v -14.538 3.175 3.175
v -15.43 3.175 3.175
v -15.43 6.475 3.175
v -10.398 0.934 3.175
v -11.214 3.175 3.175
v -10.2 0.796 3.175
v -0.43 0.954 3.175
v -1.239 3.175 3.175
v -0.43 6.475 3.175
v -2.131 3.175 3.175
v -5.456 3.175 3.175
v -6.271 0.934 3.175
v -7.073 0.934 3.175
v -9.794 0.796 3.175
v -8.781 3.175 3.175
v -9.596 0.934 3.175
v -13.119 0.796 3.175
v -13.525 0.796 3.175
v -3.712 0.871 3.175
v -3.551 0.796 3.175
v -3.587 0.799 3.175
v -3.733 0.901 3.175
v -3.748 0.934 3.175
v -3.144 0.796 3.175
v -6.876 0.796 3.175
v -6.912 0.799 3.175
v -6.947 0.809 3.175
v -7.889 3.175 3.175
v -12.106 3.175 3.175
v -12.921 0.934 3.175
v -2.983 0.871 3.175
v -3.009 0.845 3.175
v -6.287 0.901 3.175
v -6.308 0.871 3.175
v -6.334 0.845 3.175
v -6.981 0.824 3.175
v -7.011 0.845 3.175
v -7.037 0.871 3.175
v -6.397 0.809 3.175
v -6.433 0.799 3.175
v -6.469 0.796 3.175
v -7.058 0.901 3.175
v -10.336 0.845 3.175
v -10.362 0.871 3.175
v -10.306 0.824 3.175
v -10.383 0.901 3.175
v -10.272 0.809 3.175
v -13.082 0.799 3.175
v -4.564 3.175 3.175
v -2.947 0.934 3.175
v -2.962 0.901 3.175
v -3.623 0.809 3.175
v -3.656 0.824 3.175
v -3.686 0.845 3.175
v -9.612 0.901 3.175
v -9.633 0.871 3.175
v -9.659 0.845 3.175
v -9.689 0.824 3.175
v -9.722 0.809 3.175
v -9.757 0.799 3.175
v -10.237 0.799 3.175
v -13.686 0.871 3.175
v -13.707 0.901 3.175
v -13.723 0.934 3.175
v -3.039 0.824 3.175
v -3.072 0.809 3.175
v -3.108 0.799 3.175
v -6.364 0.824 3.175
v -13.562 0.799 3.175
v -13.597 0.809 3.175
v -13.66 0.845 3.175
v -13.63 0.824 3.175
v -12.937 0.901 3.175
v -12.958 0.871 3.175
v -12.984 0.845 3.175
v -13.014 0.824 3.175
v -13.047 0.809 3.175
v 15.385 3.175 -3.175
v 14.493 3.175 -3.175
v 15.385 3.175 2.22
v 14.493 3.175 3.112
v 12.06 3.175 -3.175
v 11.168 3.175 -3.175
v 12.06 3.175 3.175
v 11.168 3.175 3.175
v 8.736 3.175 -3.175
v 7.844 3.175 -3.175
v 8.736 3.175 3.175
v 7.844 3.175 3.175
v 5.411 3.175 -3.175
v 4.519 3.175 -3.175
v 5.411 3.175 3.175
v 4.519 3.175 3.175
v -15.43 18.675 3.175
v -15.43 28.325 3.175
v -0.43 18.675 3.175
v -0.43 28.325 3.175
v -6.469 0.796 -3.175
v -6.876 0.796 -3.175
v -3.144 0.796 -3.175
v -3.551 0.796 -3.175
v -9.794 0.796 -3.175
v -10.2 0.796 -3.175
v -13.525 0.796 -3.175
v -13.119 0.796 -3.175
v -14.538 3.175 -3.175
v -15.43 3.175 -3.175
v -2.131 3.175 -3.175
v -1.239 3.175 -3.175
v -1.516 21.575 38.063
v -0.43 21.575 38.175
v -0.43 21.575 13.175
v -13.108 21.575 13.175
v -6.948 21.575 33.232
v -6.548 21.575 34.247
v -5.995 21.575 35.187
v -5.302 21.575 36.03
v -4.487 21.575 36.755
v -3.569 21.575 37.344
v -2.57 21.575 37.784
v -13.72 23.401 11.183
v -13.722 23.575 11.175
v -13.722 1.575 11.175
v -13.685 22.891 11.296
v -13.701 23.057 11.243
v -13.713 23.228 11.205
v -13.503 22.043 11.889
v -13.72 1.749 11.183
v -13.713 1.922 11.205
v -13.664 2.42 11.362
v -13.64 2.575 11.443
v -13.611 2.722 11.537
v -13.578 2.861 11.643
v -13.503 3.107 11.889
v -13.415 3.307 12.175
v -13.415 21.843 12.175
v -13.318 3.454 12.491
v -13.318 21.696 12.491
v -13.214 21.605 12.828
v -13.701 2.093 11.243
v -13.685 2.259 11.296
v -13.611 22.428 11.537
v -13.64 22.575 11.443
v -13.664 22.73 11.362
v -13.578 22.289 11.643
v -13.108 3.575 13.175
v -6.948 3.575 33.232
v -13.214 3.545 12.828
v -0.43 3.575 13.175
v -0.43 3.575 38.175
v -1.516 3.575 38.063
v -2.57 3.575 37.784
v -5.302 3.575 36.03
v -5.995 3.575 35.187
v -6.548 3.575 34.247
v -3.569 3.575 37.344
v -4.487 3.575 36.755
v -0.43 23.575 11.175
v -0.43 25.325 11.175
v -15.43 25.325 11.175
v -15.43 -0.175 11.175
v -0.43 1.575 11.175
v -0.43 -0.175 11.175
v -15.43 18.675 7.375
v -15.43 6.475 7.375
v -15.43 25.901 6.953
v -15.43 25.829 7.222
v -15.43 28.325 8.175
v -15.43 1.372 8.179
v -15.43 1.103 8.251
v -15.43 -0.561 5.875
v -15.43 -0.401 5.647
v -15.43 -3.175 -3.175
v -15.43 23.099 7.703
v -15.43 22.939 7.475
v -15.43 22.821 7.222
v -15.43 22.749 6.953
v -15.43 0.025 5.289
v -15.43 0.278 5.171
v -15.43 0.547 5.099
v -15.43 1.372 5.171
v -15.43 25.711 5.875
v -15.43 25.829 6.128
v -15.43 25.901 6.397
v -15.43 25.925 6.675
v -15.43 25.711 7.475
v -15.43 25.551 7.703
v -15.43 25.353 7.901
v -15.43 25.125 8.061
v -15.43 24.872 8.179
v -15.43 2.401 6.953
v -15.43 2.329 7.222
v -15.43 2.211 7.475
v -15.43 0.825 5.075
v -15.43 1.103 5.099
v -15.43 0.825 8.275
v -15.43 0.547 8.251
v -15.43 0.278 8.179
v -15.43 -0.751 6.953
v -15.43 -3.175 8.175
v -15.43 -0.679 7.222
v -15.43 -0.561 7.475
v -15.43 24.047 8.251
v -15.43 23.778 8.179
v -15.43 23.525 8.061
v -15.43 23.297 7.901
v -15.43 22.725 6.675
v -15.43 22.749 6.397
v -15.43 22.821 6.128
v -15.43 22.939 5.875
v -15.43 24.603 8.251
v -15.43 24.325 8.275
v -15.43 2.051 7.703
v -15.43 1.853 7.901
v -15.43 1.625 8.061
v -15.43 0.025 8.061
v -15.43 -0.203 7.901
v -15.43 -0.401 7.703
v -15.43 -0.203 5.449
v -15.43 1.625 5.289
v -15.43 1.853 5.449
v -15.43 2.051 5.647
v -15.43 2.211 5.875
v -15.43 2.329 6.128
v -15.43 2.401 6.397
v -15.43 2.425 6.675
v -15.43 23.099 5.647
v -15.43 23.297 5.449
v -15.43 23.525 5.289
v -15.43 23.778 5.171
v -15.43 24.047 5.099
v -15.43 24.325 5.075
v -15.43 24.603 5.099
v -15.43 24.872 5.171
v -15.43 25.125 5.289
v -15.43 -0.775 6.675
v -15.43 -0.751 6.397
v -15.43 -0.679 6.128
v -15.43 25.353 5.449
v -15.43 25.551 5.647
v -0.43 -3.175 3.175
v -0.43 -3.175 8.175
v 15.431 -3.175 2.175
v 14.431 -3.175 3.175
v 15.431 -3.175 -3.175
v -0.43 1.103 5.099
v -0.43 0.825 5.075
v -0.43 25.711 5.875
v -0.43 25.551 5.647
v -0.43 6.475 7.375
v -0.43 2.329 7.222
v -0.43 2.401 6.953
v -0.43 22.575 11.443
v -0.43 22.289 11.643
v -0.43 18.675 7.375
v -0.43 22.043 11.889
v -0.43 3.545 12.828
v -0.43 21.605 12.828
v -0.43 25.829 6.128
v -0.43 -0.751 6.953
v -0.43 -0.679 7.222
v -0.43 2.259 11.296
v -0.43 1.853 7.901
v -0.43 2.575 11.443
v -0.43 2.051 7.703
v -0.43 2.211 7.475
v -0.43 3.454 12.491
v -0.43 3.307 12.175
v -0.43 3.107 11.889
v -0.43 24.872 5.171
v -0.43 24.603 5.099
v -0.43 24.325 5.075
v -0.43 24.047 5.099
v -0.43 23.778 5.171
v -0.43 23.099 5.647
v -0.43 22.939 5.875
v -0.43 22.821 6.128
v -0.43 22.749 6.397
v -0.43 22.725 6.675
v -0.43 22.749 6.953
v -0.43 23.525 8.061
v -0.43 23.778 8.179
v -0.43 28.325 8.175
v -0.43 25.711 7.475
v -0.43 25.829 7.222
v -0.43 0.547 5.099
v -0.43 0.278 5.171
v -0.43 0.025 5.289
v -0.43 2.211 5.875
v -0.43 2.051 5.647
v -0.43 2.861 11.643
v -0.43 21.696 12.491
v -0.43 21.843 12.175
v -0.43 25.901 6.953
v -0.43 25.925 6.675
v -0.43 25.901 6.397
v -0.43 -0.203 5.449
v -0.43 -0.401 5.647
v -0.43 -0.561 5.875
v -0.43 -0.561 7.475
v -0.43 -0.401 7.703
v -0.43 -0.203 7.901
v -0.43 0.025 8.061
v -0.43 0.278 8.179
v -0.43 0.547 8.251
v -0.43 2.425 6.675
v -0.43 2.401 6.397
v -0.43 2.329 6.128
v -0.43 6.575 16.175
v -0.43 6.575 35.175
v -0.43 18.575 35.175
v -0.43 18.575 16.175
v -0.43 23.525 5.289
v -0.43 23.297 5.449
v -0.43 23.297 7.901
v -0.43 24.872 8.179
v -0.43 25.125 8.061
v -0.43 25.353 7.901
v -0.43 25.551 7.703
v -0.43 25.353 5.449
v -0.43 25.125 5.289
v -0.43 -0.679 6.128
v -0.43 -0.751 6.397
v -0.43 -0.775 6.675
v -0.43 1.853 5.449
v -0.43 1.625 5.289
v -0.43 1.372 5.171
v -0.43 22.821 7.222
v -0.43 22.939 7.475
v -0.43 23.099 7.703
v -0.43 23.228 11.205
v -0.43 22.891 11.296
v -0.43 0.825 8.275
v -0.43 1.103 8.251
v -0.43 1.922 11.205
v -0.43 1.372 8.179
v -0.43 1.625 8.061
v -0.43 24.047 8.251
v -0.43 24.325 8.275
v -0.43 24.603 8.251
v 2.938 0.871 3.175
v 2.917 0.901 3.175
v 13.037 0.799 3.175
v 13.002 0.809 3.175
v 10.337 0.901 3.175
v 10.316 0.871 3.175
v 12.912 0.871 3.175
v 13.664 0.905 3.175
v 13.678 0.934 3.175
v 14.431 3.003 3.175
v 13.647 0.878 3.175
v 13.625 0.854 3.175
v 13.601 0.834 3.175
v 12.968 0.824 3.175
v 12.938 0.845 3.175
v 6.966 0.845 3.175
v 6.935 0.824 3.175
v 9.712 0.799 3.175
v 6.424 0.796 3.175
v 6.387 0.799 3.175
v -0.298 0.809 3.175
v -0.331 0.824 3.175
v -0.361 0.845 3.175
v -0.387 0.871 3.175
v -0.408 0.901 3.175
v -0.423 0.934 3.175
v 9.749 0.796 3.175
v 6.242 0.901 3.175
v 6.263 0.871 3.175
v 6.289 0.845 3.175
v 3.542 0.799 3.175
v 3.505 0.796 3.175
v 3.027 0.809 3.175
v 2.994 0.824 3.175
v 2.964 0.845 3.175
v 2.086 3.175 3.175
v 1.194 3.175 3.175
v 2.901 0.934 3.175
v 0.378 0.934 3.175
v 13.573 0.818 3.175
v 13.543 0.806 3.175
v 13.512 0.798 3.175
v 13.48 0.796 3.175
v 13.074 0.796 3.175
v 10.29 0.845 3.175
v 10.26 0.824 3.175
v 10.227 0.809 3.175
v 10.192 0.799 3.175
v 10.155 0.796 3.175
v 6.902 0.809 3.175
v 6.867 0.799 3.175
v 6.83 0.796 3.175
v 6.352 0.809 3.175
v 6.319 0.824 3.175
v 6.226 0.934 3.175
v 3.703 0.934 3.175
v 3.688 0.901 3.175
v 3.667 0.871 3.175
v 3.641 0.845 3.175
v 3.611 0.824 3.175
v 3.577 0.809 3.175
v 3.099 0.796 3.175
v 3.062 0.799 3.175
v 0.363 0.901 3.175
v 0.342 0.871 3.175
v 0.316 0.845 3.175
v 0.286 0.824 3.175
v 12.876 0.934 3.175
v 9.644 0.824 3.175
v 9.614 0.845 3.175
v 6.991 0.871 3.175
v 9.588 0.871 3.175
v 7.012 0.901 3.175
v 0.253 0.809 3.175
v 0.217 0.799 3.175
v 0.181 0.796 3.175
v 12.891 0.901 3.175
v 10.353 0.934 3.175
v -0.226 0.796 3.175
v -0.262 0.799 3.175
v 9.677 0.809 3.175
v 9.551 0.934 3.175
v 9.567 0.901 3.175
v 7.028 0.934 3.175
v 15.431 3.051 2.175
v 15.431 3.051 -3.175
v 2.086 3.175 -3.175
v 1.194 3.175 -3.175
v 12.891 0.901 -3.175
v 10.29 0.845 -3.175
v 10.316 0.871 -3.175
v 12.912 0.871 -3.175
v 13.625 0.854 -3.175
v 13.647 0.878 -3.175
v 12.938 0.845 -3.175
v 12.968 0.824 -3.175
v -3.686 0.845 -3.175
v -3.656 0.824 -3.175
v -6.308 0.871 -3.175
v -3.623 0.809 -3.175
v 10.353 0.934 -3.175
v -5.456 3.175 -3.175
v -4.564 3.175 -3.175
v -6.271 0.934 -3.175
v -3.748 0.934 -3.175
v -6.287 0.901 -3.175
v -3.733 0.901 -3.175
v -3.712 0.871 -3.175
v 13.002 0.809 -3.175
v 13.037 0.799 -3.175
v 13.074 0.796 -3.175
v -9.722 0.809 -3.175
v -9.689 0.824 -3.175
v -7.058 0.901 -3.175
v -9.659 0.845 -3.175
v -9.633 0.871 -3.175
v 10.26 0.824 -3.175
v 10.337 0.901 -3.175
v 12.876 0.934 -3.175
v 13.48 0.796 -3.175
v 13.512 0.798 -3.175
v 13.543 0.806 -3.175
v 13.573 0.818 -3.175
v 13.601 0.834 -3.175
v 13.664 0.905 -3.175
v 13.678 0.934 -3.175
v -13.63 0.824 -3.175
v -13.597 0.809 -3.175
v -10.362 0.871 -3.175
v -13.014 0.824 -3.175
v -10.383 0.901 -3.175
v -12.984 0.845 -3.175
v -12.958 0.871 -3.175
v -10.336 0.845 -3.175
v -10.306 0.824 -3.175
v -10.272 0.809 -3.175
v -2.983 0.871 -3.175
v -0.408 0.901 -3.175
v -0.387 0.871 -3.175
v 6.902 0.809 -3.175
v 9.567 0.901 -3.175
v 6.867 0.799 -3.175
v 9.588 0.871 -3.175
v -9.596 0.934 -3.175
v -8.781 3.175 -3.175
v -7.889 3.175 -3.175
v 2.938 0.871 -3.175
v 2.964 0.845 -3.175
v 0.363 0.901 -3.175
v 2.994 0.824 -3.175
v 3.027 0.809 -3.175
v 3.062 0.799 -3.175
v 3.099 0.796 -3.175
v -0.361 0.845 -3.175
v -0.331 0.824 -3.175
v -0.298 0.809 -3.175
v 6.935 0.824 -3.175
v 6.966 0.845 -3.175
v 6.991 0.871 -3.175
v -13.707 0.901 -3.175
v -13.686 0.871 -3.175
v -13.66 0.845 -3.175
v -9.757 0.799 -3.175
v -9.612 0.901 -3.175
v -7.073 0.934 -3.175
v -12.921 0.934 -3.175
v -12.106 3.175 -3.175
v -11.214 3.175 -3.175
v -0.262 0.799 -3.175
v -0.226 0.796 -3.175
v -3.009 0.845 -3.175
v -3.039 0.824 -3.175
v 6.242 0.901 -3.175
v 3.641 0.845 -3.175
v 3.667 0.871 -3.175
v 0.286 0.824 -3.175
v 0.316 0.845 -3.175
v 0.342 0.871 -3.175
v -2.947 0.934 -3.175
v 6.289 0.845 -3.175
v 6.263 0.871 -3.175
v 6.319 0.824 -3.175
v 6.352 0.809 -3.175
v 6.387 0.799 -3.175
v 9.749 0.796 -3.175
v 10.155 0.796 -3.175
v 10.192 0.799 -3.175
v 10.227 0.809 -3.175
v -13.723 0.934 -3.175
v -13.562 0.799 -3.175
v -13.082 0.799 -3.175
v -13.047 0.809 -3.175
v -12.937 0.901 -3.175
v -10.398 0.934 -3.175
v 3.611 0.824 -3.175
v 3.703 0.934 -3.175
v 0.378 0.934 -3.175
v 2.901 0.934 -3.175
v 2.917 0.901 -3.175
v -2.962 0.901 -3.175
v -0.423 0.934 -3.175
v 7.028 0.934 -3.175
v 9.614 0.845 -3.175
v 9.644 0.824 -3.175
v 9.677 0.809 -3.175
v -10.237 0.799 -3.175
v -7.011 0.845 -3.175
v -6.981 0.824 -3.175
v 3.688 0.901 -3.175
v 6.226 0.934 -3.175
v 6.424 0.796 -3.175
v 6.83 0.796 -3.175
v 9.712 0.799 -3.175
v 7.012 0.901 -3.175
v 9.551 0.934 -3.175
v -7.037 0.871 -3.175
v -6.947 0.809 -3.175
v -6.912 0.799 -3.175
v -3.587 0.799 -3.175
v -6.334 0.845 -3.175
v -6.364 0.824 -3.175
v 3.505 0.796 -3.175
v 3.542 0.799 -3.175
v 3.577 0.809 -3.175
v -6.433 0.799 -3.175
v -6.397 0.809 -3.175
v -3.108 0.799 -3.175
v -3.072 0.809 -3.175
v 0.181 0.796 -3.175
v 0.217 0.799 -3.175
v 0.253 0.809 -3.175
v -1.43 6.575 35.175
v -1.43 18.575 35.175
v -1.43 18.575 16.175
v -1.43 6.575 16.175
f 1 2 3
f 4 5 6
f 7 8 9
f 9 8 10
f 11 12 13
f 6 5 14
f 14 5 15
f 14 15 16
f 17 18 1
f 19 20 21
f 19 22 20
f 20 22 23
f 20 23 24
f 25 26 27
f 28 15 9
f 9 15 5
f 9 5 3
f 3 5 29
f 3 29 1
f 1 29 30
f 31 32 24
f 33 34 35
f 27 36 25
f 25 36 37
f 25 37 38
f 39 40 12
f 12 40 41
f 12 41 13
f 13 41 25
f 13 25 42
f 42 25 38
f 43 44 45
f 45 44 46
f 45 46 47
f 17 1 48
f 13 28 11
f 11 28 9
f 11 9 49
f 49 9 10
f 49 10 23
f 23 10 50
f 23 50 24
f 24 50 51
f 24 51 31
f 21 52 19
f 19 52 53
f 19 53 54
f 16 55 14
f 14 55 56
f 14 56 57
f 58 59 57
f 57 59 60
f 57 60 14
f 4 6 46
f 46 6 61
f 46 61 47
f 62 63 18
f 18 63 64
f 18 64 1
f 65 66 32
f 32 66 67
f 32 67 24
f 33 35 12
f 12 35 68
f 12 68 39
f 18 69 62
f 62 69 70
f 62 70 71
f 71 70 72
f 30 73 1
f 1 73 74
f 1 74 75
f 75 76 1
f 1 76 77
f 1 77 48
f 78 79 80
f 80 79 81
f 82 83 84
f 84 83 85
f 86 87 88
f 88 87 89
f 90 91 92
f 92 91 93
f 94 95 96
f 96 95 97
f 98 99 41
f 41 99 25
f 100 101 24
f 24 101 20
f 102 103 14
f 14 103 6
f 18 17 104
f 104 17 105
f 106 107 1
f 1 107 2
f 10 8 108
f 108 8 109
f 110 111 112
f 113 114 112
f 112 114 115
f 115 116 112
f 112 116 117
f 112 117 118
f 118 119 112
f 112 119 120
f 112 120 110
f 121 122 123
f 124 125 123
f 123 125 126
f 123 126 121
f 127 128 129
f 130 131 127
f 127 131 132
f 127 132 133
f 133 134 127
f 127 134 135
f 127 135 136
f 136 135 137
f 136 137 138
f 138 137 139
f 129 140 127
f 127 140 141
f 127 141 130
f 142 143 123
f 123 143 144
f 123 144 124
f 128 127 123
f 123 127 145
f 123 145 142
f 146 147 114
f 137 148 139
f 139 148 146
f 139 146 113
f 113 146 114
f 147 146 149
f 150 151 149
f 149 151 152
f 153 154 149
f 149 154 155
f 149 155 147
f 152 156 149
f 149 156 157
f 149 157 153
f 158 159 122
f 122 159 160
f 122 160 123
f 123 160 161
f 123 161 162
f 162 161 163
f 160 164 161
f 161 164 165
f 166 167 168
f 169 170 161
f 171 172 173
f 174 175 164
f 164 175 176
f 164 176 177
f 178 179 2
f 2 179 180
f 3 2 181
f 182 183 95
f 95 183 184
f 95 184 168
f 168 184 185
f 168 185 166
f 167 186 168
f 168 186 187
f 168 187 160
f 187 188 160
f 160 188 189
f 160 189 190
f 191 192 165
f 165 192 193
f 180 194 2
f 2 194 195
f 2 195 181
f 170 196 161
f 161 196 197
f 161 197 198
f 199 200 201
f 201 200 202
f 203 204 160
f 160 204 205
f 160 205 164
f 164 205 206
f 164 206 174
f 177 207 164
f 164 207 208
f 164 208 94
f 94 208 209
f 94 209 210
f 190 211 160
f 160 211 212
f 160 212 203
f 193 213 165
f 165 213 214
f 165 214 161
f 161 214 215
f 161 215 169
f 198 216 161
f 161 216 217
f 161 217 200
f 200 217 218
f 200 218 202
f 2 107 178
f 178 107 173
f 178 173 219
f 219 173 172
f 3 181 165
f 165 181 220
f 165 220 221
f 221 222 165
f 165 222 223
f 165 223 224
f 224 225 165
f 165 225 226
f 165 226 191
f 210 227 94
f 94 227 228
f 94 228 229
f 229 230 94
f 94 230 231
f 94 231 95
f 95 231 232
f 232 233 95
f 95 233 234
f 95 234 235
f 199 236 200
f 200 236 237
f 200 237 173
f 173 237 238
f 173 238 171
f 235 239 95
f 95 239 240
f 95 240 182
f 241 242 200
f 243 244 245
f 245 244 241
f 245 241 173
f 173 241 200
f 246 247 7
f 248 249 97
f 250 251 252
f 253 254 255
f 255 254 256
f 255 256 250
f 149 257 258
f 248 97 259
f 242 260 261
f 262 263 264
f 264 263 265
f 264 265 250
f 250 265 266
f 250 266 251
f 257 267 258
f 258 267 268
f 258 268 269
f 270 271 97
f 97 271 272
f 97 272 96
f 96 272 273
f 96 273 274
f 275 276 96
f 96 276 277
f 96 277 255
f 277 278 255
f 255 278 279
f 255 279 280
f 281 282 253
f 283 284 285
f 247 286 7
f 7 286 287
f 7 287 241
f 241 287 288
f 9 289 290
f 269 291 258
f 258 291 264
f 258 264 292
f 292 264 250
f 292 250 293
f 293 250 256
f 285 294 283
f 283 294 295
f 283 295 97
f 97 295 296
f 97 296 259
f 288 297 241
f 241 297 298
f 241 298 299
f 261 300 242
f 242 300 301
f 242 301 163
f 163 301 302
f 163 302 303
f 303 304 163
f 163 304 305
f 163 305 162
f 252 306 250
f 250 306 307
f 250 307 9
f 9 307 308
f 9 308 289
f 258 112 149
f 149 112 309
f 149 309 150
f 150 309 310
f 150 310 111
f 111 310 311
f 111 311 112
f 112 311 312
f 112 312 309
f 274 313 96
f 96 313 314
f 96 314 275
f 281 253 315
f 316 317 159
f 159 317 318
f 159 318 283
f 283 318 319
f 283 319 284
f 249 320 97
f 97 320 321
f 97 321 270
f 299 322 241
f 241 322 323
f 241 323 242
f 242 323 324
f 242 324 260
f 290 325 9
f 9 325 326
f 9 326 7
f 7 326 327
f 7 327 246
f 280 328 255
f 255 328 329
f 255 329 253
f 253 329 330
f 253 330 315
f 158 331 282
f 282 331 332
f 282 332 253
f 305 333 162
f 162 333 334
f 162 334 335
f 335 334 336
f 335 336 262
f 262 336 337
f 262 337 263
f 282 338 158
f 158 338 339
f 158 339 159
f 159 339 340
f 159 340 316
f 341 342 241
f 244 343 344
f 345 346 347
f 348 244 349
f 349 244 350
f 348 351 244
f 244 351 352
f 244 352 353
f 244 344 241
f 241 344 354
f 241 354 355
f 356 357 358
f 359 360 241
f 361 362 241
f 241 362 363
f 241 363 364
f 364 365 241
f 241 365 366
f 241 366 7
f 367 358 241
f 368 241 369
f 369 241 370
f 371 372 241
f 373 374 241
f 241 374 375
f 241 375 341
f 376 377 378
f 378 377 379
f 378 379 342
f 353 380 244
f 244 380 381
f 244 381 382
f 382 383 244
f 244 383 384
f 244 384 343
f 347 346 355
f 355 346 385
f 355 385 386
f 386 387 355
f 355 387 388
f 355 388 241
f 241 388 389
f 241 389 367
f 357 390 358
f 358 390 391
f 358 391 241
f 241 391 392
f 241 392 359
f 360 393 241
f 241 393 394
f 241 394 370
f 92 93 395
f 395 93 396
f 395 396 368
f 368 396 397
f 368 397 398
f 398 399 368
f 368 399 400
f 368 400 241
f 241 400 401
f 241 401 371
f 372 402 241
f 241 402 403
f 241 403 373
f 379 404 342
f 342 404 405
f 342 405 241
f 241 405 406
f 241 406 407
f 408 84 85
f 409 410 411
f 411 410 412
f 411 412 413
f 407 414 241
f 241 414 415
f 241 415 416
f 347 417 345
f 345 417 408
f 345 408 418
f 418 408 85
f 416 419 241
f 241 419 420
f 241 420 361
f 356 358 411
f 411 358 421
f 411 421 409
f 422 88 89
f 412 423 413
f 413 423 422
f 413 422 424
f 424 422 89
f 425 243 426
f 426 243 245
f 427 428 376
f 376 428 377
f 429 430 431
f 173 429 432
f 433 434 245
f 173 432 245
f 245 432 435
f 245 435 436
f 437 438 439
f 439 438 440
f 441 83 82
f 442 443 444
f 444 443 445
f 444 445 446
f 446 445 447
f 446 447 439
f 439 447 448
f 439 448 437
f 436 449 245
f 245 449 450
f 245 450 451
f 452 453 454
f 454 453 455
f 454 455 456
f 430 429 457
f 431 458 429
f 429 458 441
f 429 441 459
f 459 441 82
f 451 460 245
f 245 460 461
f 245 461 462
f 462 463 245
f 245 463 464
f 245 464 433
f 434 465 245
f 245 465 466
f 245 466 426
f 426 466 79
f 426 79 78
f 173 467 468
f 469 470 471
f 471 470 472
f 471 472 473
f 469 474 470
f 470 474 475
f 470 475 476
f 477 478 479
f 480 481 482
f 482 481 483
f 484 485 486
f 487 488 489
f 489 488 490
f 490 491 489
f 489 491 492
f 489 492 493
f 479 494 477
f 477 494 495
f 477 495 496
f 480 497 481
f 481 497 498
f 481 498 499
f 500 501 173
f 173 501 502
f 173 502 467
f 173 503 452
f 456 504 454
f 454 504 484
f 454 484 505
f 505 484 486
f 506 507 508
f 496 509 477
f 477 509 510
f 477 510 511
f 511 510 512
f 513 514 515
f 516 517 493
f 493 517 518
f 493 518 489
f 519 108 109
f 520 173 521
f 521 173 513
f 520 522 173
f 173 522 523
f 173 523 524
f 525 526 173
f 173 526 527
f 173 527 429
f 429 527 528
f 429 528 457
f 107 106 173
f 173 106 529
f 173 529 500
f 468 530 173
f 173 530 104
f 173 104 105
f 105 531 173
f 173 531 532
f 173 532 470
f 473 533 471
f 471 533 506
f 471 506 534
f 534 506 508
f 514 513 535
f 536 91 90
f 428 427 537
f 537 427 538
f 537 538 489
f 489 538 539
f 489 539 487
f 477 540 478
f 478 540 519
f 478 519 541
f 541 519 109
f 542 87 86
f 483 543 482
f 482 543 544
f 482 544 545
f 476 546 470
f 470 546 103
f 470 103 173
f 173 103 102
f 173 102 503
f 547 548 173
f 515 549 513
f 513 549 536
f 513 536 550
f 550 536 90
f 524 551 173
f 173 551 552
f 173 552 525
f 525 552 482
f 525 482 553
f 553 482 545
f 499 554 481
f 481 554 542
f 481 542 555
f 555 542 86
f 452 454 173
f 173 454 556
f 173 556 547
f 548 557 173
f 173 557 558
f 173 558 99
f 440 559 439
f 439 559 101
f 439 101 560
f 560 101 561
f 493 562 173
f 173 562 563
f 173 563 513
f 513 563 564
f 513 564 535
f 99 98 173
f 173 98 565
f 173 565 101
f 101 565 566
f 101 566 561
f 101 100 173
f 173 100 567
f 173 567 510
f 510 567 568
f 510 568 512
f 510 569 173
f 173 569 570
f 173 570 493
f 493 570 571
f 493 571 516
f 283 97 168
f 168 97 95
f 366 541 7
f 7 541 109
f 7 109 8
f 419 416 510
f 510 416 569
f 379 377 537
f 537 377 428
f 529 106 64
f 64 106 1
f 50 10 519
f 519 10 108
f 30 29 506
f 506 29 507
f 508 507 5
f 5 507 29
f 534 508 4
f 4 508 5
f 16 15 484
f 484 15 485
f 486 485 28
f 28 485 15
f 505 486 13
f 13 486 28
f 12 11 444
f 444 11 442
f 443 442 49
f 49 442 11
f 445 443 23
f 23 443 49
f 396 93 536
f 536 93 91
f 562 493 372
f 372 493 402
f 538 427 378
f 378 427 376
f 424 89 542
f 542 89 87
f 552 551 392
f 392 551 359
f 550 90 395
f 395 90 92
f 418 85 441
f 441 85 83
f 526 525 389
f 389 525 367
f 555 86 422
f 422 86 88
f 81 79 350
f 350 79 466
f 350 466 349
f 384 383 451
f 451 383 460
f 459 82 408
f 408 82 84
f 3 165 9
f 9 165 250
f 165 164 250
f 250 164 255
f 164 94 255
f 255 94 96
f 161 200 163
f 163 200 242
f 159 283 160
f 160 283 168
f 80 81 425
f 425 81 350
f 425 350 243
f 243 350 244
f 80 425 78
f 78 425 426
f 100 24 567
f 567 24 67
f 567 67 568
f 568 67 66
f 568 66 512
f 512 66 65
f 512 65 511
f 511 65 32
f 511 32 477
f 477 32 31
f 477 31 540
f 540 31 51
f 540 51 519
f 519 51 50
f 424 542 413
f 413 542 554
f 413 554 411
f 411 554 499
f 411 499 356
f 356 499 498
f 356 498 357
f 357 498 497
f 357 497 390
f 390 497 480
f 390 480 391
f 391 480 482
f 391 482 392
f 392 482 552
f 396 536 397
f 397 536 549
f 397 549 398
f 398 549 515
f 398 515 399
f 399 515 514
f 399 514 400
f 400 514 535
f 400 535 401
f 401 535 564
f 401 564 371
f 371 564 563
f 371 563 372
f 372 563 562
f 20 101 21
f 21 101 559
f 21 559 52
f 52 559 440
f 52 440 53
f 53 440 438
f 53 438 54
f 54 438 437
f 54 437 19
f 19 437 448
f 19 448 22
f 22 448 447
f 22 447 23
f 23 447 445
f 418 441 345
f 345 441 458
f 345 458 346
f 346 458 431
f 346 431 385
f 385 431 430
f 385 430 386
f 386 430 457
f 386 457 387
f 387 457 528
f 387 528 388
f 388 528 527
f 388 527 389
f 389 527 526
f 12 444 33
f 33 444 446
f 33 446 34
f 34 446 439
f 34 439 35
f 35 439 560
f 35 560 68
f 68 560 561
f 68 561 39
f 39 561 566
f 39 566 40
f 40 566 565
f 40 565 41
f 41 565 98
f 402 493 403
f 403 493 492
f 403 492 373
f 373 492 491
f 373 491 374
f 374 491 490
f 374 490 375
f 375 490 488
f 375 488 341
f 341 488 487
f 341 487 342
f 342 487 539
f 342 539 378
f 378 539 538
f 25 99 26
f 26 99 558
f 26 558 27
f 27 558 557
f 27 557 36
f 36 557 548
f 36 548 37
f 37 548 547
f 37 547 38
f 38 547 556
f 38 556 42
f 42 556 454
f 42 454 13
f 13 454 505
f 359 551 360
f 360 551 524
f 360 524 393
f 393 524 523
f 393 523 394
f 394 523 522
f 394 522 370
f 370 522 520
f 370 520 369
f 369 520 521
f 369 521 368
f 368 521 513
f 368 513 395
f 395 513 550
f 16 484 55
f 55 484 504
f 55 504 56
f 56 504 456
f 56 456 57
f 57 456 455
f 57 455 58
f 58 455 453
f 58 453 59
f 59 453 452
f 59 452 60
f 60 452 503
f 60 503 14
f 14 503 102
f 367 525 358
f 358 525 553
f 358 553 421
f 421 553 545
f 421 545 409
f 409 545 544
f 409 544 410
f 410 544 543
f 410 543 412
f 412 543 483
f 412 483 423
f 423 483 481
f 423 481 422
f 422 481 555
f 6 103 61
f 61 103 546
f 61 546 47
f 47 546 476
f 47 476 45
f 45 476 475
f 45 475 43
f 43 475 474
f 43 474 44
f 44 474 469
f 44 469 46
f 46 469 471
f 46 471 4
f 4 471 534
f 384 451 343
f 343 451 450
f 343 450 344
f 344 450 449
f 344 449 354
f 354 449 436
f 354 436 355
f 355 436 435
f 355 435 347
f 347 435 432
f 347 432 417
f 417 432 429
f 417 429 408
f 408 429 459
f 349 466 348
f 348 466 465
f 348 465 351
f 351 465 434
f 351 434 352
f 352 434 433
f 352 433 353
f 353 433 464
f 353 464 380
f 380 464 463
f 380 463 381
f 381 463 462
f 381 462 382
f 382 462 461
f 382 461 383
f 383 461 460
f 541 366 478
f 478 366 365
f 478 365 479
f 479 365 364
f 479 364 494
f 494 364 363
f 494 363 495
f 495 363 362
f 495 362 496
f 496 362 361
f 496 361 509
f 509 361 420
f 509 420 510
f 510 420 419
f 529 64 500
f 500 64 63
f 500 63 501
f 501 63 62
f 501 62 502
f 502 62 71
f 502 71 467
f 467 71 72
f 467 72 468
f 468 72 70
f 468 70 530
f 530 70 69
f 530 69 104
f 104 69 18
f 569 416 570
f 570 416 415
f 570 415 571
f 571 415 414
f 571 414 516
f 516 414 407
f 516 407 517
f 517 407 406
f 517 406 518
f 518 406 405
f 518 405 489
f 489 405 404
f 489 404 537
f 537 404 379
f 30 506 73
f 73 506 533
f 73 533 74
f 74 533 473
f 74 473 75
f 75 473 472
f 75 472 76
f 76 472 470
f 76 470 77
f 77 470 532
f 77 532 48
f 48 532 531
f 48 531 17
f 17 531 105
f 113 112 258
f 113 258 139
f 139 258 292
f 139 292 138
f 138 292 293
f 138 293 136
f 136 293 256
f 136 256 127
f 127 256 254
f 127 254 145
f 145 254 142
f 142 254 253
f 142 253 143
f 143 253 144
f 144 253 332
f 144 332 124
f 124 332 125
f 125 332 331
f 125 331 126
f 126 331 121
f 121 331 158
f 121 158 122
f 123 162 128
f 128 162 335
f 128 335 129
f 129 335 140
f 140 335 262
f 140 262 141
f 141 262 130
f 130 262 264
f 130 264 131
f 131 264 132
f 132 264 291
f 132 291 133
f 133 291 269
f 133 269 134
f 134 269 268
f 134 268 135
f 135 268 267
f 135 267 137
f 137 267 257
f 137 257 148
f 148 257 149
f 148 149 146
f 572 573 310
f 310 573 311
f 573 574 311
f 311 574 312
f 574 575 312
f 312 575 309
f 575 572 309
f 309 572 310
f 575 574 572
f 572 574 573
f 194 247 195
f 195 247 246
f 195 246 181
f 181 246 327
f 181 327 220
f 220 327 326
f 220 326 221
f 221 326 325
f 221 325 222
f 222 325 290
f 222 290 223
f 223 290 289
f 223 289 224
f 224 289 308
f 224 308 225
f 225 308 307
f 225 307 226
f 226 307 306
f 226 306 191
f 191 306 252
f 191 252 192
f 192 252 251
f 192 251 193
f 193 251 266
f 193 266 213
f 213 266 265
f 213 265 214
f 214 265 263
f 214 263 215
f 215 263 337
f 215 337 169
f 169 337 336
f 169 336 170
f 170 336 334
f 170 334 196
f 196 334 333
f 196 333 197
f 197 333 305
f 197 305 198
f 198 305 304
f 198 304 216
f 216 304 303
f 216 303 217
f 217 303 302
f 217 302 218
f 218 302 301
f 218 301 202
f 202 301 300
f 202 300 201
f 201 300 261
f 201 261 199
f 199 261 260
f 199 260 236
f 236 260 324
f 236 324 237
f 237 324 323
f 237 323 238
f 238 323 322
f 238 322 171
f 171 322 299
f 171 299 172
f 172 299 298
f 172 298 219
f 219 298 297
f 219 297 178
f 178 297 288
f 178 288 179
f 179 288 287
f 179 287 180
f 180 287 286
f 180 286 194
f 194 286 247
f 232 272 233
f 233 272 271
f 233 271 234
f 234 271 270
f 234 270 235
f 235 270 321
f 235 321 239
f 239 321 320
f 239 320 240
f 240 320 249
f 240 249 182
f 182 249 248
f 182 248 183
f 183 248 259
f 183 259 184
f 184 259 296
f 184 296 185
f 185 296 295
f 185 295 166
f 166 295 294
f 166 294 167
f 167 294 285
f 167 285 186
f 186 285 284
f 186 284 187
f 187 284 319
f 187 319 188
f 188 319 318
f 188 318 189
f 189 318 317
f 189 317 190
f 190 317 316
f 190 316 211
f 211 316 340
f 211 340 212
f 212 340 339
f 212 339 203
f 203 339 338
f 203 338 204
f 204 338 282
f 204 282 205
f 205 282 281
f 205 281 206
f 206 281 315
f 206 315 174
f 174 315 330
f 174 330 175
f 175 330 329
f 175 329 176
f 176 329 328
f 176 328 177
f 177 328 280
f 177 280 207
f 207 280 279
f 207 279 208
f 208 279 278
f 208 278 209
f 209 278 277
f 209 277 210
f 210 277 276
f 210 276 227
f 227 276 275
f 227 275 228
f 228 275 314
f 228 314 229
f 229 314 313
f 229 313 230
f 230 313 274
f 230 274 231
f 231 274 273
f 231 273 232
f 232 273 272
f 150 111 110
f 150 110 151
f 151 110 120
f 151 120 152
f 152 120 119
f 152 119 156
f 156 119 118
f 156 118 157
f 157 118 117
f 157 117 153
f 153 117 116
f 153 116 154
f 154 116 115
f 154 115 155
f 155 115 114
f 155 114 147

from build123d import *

# Parameters (mm, degrees)
BOSS_EXTRUDE1_DEPTH  = 18
SKETCH2_W            = 8.291454006
SKETCH2_H            = 18
BOSS_EXTRUDE2_DEPTH  = 8
SKETCH3_W            = 8
SKETCH3_H            = 18
BOSS_EXTRUDE3_DEPTH  = 1.708545994
SKETCH4_W            = 10
SKETCH4_H            = 8
BOSS_EXTRUDE4_DEPTH  = 6.75
BOSS_EXTRUDE5_DEPTH  = 5
SKETCH6_W            = 30.861
SKETCH6_H            = 6.35
BOSS_EXTRUDE6_DEPTH  = 6.35
SKETCH7_W            = 15
SKETCH7_H            = 8
BOSS_EXTRUDE7_DEPTH  = 6.75
CUT_EXTRUDE1_DEPTH   = 6.35
CUT_EXTRUDE2_DEPTH   = 6.35
BOSS_EXTRUDE8_DEPTH  = 6.35
BOSS_EXTRUDE9_DEPTH  = 6.35
BOSS_EXTRUDE10_DEPTH = 6.35
CUT_EXTRUDE3_DEPTH   = 48.596280897
CUT_EXTRUDE4_DEPTH   = 48.596280897
CUT_EXTRUDE5_DEPTH   = 48.596280897
CUT_EXTRUDE6_DEPTH   = 48.596280897
SKETCH17_W           = 4.2
SKETCH17_H           = 12.2
CUT_EXTRUDE7_DEPTH   = 51.111950381
CHAMFER1_SIZE        = 3
FILLET1_START        = -4
FILLET1_DEPTH        = 8
FILLET1_START_2      = -3.175
FILLET1_2_DEPTH      = 6.35
FILLET1_START_3      = 12.448968436
FILLET1_3_OUTLINE_W  = 5
FILLET1_3_OUTLINE_H  = 8.175
FILLET1_3_DEPTH      = 1.551031564
FILLET2_R            = 2
SKETCH20_W           = 19
SKETCH20_H           = 12
CUT_EXTRUDE8_DEPTH   = 1
SKETCH21_R           = 1.6
CUT_EXTRUDE9_DEPTH   = 51.111950381
FILLET3_R            = 7


with BuildPart() as part:
    # Sketch1 → Boss-Extrude1 (new body)
    with BuildSketch(Plane.XZ.offset(-3.575)):
        Polygon((-13.721954006, 11.175), (-5.4305, 11.175), (-5.4305, 38.175), align=None)
    extrude(amount=-BOSS_EXTRUDE1_DEPTH)

    # Sketch2 → Boss-Extrude2 (add)
    with BuildSketch(Plane(origin=(0, 0, 11.175), x_dir=(-1, 0, 0), z_dir=(0, 0, -1))):
        with Locations((9.576227003, 12.575)):
            Rectangle(SKETCH2_W, SKETCH2_H)
    extrude(amount=BOSS_EXTRUDE2_DEPTH)

    # Sketch3 → Boss-Extrude3 (add)
    with BuildSketch(Plane.ZY.offset(13.721954006)):
        with Locations((7.175, 12.575)):
            Rectangle(SKETCH3_W, SKETCH3_H)
    extrude(amount=BOSS_EXTRUDE3_DEPTH)

    # Sketch4 → Boss-Extrude4 (add)
    with BuildSketch(Plane.XZ.offset(-3.575)):
        with Locations((-10.4305, 7.175)):
            Rectangle(SKETCH4_W, SKETCH4_H)
    extrude(amount=BOSS_EXTRUDE4_DEPTH)

    # Sketch5 → Boss-Extrude5 (add)
    with BuildSketch(Plane(origin=(-5.4305, 0, 0), x_dir=(0, 0, -1), z_dir=(1, 0, 0))):
        Polygon((-3.175, 21.575), (-3.175, -3.175), (-11.175, -3.175), (-11.175, 3.575), (-38.175, 3.575), (-38.175, 21.575), align=None)
    extrude(amount=BOSS_EXTRUDE5_DEPTH)

    # Sketch6 → Boss-Extrude6 (add)
    with BuildSketch(Plane(origin=(0, 0, 3.175), x_dir=(-1, 0, 0), z_dir=(0, 0, -1))):
        Rectangle(SKETCH6_W, SKETCH6_H)
    extrude(amount=BOSS_EXTRUDE6_DEPTH)

    # Sketch7 → Boss-Extrude7 (add)
    with BuildSketch(Plane(origin=(0, 21.575, 0), x_dir=(-1, 0, 0), z_dir=(0, 1, 0))):
        with Locations((7.9305, 7.175)):
            Rectangle(SKETCH7_W, SKETCH7_H)
    extrude(amount=BOSS_EXTRUDE7_DEPTH)

    # Sketch8 → Cut-Extrude1 (cut)
    with BuildSketch(Plane(origin=(0, 0, -3.175), x_dir=(-1, 0, 0), z_dir=(0, 0, -1))):
        Polygon((1.239033663, 3.175), (-1.1938, 3.175), (-0.327866283, 0.795866667), (0.373099946, 0.795866667), align=None)
    extrude(amount=-CUT_EXTRUDE1_DEPTH, mode=Mode.SUBTRACT)

    # Sketch9 → Cut-Extrude2 (cut)
    with BuildSketch(Plane(origin=(0, 0, -3.175), x_dir=(-1, 0, 0), z_dir=(0, 0, -1))):
        Polygon((2.13106, 3.175), (2.996993717, 0.795866667), (13.672539946, 0.795866667), (14.538473663, 3.175), align=None)
    extrude(amount=-CUT_EXTRUDE2_DEPTH, mode=Mode.SUBTRACT)

    # Sketch10 → Boss-Extrude8 (add)
    with BuildSketch(Plane(origin=(0, 0, 3.175), x_dir=(-1, 0, 0), z_dir=(0, 0, -1))):
        Polygon((10.347679946, 0.795866667), (11.213613663, 3.175), (12.10564, 3.175), (12.971573717, 0.795866667), align=None)
    extrude(amount=BOSS_EXTRUDE8_DEPTH)

    # Sketch11 → Boss-Extrude9 (add)
    with BuildSketch(Plane(origin=(0, 0, 3.175), x_dir=(-1, 0, 0), z_dir=(0, 0, -1))):
        Polygon((7.022819946, 0.795866667), (7.888753663, 3.175), (8.78078, 3.175), (9.646713717, 0.795866667), align=None)
    extrude(amount=BOSS_EXTRUDE9_DEPTH)

    # Sketch12 → Boss-Extrude10 (add)
    with BuildSketch(Plane(origin=(0, 0, 3.175), x_dir=(-1, 0, 0), z_dir=(0, 0, -1))):
        Polygon((3.697959946, 0.795866667), (4.563893663, 3.175), (5.45592, 3.175), (6.321853717, 0.795866667), align=None)
    extrude(amount=BOSS_EXTRUDE10_DEPTH)

    # Sketch13 → Cut-Extrude3 (cut, through all)
    with BuildSketch(Plane.XY.offset(3.175)):
        Polygon((2.085826337, 3.175), (2.951760054, 0.795866667), (3.652726283, 0.795866667), (4.51866, 3.175), align=None)
    extrude(amount=-CUT_EXTRUDE3_DEPTH, mode=Mode.SUBTRACT)

    # Sketch14 → Cut-Extrude4 (cut, through all)
    with BuildSketch(Plane.XY.offset(3.175)):
        Polygon((5.410686337, 3.175), (6.276620054, 0.795866667), (6.977586283, 0.795866667), (7.84352, 3.175), align=None)
    extrude(amount=-CUT_EXTRUDE4_DEPTH, mode=Mode.SUBTRACT)

    # Sketch15 → Cut-Extrude5 (cut, through all)
    with BuildSketch(Plane.XY.offset(3.175)):
        Polygon((8.735546337, 3.175), (9.601480054, 0.795866667), (10.302446283, 0.795866667), (11.16838, 3.175), align=None)
    extrude(amount=-CUT_EXTRUDE5_DEPTH, mode=Mode.SUBTRACT)

    # Sketch16 → Cut-Extrude6 (cut, through all)
    with BuildSketch(Plane.XY.offset(3.175)):
        Polygon((12.060406337, 3.175), (12.926340054, 0.795866667), (13.627306283, 0.795866667), (14.49324, 3.175), align=None)
    extrude(amount=-CUT_EXTRUDE6_DEPTH, mode=Mode.SUBTRACT)

    # Sketch17 → Cut-Extrude7 (cut, through all)
    with BuildSketch(Plane(origin=(-0.4305, 0, 0), x_dir=(0, 0, -1), z_dir=(1, 0, 0))):
        with Locations((-5.275, 12.575)):
            Rectangle(SKETCH17_W, SKETCH17_H)
    extrude(amount=-CUT_EXTRUDE7_DEPTH, mode=Mode.SUBTRACT)

    # Chamfer1
    chamfer1_edges = [part.edges().sort_by_distance(p)[0] for p in [
        (-7.9305, -3.175, 11.175),
        (-7.9305, 28.325, 11.175),
    ]]
    chamfer(chamfer1_edges, length=CHAMFER1_SIZE)

    # Fillet1: read off the stored shape, not the designer's step
    # Fillet1 outline → Fillet1 (cut)
    with BuildSketch(Plane.XY.offset(FILLET1_START)):
        Polygon((15.4305, 3.175), (15.385266337, 3.175), (15.4305, 3.050721534), align=None)
    extrude(amount=FILLET1_DEPTH, mode=Mode.SUBTRACT)

    # Fillet1 2 outline → Fillet1 2 (add)
    with BuildSketch(Plane.XY.offset(FILLET1_START_2)):
        with BuildLine():
            Line((12.926340054, 0.795866667), (13.073586605, 0.795866667))
            ThreePointArc((13.073586605, 0.795866667), (12.952969292, 0.83389716), (12.875978768, 0.934233164))
            Line((12.875978768, 0.934233164), (12.926340054, 0.795866667))
        make_face()
        with BuildLine():
            Line((13.627306283, 0.795866667), (13.67766757, 0.934233164))
            ThreePointArc((13.67766757, 0.934233164), (13.600677045, 0.83389716), (13.480059732, 0.795866667))
            Line((13.480059732, 0.795866667), (13.627306283, 0.795866667))
        make_face()
        with BuildLine():
            Line((-3.697959946, 0.795866667), (-3.550713395, 0.795866667))
            ThreePointArc((-3.550713395, 0.795866667), (-3.671330708, 0.83389716), (-3.748321232, 0.934233164))
            Line((-3.748321232, 0.934233164), (-3.697959946, 0.795866667))
        make_face()
        with BuildLine():
            ThreePointArc((-2.94663243, 0.934233164), (-3.023622955, 0.83389716), (-3.144240268, 0.795866667))
            Line((-3.144240268, 0.795866667), (-2.996993717, 0.795866667))
            Line((-2.996993717, 0.795866667), (-2.94663243, 0.934233164))
        make_face()
        with BuildLine():
            Line((6.977586283, 0.795866667), (7.02794757, 0.934233164))
            ThreePointArc((7.02794757, 0.934233164), (6.950957045, 0.83389716), (6.830339732, 0.795866667))
            Line((6.830339732, 0.795866667), (6.977586283, 0.795866667))
        make_face()
        with BuildLine():
            Line((6.276620054, 0.795866667), (6.423866605, 0.795866667))
            ThreePointArc((6.423866605, 0.795866667), (6.303249292, 0.83389716), (6.226258768, 0.934233164))
            Line((6.226258768, 0.934233164), (6.276620054, 0.795866667))
        make_face()
        with BuildLine():
            Line((3.652726283, 0.795866667), (3.70308757, 0.934233164))
            ThreePointArc((3.70308757, 0.934233164), (3.626097045, 0.83389716), (3.505479732, 0.795866667))
            Line((3.505479732, 0.795866667), (3.652726283, 0.795866667))
        make_face()
        with BuildLine():
            Line((2.951760054, 0.795866667), (3.099006605, 0.795866667))
            ThreePointArc((3.099006605, 0.795866667), (2.978389292, 0.83389716), (2.901398768, 0.934233164))
            Line((2.901398768, 0.934233164), (2.951760054, 0.795866667))
        make_face()
        with BuildLine():
            Line((10.302446283, 0.795866667), (10.35280757, 0.934233164))
            ThreePointArc((10.35280757, 0.934233164), (10.275817045, 0.83389716), (10.155199732, 0.795866667))
            Line((10.155199732, 0.795866667), (10.302446283, 0.795866667))
        make_face()
        with BuildLine():
            Line((9.601480054, 0.795866667), (9.748726605, 0.795866667))
            ThreePointArc((9.748726605, 0.795866667), (9.628109292, 0.83389716), (9.551118768, 0.934233164))
            Line((9.551118768, 0.934233164), (9.601480054, 0.795866667))
        make_face()
        with BuildLine():
            Line((-6.321853717, 0.795866667), (-6.27149243, 0.934233164))
            ThreePointArc((-6.27149243, 0.934233164), (-6.348482955, 0.83389716), (-6.469100268, 0.795866667))
            Line((-6.469100268, 0.795866667), (-6.321853717, 0.795866667))
        make_face()
        with BuildLine():
            Line((-7.022819946, 0.795866667), (-6.875573395, 0.795866667))
            ThreePointArc((-6.875573395, 0.795866667), (-6.996190708, 0.83389716), (-7.073181232, 0.934233164))
            Line((-7.073181232, 0.934233164), (-7.022819946, 0.795866667))
        make_face()
        with BuildLine():
            Line((-9.646713717, 0.795866667), (-9.59635243, 0.934233164))
            ThreePointArc((-9.59635243, 0.934233164), (-9.673342955, 0.83389716), (-9.793960268, 0.795866667))
            Line((-9.793960268, 0.795866667), (-9.646713717, 0.795866667))
        make_face()
        with BuildLine():
            Line((-10.347679946, 0.795866667), (-10.200433395, 0.795866667))
            ThreePointArc((-10.200433395, 0.795866667), (-10.321050708, 0.83389716), (-10.398041232, 0.934233164))
            Line((-10.398041232, 0.934233164), (-10.347679946, 0.795866667))
        make_face()
        with BuildLine():
            ThreePointArc((0.37822757, 0.934233164), (0.301237045, 0.83389716), (0.180619732, 0.795866667))
            Line((0.180619732, 0.795866667), (0.327866283, 0.795866667))
            Line((0.327866283, 0.795866667), (0.37822757, 0.934233164))
        make_face()
        with BuildLine():
            ThreePointArc((-0.225853395, 0.795866667), (-0.346470708, 0.83389716), (-0.423461232, 0.934233164))
            Line((-0.423461232, 0.934233164), (-0.373099946, 0.795866667))
            Line((-0.373099946, 0.795866667), (-0.225853395, 0.795866667))
        make_face()
        with BuildLine():
            ThreePointArc((-12.92121243, 0.934233164), (-12.998202955, 0.83389716), (-13.118820268, 0.795866667))
            Line((-13.118820268, 0.795866667), (-12.971573717, 0.795866667))
            Line((-12.971573717, 0.795866667), (-12.92121243, 0.934233164))
        make_face()
        with BuildLine():
            ThreePointArc((-13.525293395, 0.795866667), (-13.645910708, 0.83389716), (-13.722901232, 0.934233164))
            Line((-13.722901232, 0.934233164), (-13.672539946, 0.795866667))
            Line((-13.672539946, 0.795866667), (-13.525293395, 0.795866667))
        make_face()
    extrude(amount=FILLET1_2_DEPTH)

    # Fillet1 3 outline → Fillet1 3 (cut)
    with BuildSketch(Plane(origin=(0, 0, 0), x_dir=(0.707106781186548, 0, -0.707106781186547), z_dir=(0.707106781186547, 0, 0.707106781186548)).offset(FILLET1_START_3)):
        with Locations((8.5, -0.9125)):
            Rectangle(FILLET1_3_OUTLINE_W, FILLET1_3_OUTLINE_H)
    extrude(amount=FILLET1_3_DEPTH, mode=Mode.SUBTRACT)

    # Fillet2
    fillet2_edges = [part.edges().sort_by_distance(p)[0] for p in [
        (-7.076227003, 3.575, 11.175),
        (-7.076227003, 21.575, 11.175),
    ]]
    fillet(fillet2_edges, radius=FILLET2_R)

    # Sketch20 → Cut-Extrude8 (cut)
    with BuildSketch(Plane(origin=(-0.4305, 0, 0), x_dir=(0, 0, -1), z_dir=(1, 0, 0))):
        with Locations((-25.675, 12.575)):
            Rectangle(SKETCH20_W, SKETCH20_H)
    extrude(amount=-CUT_EXTRUDE8_DEPTH, mode=Mode.SUBTRACT)

    # Sketch21 → Cut-Extrude9 (cut, symmetric)
    with BuildSketch(Plane(origin=(-0.4305, 0, 0), x_dir=(0, 0, -1), z_dir=(1, 0, 0))):
        with Locations((-6.675, 0.825)):
            Circle(SKETCH21_R)
    cut_extrude9 = extrude(amount=CUT_EXTRUDE9_DEPTH, both=True, mode=Mode.SUBTRACT)

    # Mirror1: Cut-Extrude9 across plane
    add(cut_extrude9.mirror(Plane(origin=(0, 12.575, 0), x_dir=(0, 0, 1), z_dir=(0, -1, 0))), mode=Mode.SUBTRACT)

    # Fillet3
    # the kernel refuses this fillet: 7 mm, written as the material it takes off along each edge
    with BuildSketch(Plane(origin=(-5.4305, -9.351854629, 38.175), x_dir=(1, 0, 0), z_dir=(0, 1, 0))) as fillet3_piece_1:
        with BuildLine():
            CenterArc((5.17365713, 6.997845611), FILLET3_R, 197.071245119, 71.507206098)
            Line((-1.517926116, 4.942921363), (-1.651757781, 4.901822878))
            Line((-1.651757781, 4.901822878), (-0.133831665, -0.041098485))
            Line((-0.133831665, -0.041098485), (0, -0.14))
            ThreePointArc((0, -0.14), (2.5, -0.14), (4.996526857, -0.139956912))
            Line((4.996526857, -0.139956912), (5, 0))
        make_face()
    extrude(amount=43.853709258, mode=Mode.SUBTRACT)


solid = part.part
